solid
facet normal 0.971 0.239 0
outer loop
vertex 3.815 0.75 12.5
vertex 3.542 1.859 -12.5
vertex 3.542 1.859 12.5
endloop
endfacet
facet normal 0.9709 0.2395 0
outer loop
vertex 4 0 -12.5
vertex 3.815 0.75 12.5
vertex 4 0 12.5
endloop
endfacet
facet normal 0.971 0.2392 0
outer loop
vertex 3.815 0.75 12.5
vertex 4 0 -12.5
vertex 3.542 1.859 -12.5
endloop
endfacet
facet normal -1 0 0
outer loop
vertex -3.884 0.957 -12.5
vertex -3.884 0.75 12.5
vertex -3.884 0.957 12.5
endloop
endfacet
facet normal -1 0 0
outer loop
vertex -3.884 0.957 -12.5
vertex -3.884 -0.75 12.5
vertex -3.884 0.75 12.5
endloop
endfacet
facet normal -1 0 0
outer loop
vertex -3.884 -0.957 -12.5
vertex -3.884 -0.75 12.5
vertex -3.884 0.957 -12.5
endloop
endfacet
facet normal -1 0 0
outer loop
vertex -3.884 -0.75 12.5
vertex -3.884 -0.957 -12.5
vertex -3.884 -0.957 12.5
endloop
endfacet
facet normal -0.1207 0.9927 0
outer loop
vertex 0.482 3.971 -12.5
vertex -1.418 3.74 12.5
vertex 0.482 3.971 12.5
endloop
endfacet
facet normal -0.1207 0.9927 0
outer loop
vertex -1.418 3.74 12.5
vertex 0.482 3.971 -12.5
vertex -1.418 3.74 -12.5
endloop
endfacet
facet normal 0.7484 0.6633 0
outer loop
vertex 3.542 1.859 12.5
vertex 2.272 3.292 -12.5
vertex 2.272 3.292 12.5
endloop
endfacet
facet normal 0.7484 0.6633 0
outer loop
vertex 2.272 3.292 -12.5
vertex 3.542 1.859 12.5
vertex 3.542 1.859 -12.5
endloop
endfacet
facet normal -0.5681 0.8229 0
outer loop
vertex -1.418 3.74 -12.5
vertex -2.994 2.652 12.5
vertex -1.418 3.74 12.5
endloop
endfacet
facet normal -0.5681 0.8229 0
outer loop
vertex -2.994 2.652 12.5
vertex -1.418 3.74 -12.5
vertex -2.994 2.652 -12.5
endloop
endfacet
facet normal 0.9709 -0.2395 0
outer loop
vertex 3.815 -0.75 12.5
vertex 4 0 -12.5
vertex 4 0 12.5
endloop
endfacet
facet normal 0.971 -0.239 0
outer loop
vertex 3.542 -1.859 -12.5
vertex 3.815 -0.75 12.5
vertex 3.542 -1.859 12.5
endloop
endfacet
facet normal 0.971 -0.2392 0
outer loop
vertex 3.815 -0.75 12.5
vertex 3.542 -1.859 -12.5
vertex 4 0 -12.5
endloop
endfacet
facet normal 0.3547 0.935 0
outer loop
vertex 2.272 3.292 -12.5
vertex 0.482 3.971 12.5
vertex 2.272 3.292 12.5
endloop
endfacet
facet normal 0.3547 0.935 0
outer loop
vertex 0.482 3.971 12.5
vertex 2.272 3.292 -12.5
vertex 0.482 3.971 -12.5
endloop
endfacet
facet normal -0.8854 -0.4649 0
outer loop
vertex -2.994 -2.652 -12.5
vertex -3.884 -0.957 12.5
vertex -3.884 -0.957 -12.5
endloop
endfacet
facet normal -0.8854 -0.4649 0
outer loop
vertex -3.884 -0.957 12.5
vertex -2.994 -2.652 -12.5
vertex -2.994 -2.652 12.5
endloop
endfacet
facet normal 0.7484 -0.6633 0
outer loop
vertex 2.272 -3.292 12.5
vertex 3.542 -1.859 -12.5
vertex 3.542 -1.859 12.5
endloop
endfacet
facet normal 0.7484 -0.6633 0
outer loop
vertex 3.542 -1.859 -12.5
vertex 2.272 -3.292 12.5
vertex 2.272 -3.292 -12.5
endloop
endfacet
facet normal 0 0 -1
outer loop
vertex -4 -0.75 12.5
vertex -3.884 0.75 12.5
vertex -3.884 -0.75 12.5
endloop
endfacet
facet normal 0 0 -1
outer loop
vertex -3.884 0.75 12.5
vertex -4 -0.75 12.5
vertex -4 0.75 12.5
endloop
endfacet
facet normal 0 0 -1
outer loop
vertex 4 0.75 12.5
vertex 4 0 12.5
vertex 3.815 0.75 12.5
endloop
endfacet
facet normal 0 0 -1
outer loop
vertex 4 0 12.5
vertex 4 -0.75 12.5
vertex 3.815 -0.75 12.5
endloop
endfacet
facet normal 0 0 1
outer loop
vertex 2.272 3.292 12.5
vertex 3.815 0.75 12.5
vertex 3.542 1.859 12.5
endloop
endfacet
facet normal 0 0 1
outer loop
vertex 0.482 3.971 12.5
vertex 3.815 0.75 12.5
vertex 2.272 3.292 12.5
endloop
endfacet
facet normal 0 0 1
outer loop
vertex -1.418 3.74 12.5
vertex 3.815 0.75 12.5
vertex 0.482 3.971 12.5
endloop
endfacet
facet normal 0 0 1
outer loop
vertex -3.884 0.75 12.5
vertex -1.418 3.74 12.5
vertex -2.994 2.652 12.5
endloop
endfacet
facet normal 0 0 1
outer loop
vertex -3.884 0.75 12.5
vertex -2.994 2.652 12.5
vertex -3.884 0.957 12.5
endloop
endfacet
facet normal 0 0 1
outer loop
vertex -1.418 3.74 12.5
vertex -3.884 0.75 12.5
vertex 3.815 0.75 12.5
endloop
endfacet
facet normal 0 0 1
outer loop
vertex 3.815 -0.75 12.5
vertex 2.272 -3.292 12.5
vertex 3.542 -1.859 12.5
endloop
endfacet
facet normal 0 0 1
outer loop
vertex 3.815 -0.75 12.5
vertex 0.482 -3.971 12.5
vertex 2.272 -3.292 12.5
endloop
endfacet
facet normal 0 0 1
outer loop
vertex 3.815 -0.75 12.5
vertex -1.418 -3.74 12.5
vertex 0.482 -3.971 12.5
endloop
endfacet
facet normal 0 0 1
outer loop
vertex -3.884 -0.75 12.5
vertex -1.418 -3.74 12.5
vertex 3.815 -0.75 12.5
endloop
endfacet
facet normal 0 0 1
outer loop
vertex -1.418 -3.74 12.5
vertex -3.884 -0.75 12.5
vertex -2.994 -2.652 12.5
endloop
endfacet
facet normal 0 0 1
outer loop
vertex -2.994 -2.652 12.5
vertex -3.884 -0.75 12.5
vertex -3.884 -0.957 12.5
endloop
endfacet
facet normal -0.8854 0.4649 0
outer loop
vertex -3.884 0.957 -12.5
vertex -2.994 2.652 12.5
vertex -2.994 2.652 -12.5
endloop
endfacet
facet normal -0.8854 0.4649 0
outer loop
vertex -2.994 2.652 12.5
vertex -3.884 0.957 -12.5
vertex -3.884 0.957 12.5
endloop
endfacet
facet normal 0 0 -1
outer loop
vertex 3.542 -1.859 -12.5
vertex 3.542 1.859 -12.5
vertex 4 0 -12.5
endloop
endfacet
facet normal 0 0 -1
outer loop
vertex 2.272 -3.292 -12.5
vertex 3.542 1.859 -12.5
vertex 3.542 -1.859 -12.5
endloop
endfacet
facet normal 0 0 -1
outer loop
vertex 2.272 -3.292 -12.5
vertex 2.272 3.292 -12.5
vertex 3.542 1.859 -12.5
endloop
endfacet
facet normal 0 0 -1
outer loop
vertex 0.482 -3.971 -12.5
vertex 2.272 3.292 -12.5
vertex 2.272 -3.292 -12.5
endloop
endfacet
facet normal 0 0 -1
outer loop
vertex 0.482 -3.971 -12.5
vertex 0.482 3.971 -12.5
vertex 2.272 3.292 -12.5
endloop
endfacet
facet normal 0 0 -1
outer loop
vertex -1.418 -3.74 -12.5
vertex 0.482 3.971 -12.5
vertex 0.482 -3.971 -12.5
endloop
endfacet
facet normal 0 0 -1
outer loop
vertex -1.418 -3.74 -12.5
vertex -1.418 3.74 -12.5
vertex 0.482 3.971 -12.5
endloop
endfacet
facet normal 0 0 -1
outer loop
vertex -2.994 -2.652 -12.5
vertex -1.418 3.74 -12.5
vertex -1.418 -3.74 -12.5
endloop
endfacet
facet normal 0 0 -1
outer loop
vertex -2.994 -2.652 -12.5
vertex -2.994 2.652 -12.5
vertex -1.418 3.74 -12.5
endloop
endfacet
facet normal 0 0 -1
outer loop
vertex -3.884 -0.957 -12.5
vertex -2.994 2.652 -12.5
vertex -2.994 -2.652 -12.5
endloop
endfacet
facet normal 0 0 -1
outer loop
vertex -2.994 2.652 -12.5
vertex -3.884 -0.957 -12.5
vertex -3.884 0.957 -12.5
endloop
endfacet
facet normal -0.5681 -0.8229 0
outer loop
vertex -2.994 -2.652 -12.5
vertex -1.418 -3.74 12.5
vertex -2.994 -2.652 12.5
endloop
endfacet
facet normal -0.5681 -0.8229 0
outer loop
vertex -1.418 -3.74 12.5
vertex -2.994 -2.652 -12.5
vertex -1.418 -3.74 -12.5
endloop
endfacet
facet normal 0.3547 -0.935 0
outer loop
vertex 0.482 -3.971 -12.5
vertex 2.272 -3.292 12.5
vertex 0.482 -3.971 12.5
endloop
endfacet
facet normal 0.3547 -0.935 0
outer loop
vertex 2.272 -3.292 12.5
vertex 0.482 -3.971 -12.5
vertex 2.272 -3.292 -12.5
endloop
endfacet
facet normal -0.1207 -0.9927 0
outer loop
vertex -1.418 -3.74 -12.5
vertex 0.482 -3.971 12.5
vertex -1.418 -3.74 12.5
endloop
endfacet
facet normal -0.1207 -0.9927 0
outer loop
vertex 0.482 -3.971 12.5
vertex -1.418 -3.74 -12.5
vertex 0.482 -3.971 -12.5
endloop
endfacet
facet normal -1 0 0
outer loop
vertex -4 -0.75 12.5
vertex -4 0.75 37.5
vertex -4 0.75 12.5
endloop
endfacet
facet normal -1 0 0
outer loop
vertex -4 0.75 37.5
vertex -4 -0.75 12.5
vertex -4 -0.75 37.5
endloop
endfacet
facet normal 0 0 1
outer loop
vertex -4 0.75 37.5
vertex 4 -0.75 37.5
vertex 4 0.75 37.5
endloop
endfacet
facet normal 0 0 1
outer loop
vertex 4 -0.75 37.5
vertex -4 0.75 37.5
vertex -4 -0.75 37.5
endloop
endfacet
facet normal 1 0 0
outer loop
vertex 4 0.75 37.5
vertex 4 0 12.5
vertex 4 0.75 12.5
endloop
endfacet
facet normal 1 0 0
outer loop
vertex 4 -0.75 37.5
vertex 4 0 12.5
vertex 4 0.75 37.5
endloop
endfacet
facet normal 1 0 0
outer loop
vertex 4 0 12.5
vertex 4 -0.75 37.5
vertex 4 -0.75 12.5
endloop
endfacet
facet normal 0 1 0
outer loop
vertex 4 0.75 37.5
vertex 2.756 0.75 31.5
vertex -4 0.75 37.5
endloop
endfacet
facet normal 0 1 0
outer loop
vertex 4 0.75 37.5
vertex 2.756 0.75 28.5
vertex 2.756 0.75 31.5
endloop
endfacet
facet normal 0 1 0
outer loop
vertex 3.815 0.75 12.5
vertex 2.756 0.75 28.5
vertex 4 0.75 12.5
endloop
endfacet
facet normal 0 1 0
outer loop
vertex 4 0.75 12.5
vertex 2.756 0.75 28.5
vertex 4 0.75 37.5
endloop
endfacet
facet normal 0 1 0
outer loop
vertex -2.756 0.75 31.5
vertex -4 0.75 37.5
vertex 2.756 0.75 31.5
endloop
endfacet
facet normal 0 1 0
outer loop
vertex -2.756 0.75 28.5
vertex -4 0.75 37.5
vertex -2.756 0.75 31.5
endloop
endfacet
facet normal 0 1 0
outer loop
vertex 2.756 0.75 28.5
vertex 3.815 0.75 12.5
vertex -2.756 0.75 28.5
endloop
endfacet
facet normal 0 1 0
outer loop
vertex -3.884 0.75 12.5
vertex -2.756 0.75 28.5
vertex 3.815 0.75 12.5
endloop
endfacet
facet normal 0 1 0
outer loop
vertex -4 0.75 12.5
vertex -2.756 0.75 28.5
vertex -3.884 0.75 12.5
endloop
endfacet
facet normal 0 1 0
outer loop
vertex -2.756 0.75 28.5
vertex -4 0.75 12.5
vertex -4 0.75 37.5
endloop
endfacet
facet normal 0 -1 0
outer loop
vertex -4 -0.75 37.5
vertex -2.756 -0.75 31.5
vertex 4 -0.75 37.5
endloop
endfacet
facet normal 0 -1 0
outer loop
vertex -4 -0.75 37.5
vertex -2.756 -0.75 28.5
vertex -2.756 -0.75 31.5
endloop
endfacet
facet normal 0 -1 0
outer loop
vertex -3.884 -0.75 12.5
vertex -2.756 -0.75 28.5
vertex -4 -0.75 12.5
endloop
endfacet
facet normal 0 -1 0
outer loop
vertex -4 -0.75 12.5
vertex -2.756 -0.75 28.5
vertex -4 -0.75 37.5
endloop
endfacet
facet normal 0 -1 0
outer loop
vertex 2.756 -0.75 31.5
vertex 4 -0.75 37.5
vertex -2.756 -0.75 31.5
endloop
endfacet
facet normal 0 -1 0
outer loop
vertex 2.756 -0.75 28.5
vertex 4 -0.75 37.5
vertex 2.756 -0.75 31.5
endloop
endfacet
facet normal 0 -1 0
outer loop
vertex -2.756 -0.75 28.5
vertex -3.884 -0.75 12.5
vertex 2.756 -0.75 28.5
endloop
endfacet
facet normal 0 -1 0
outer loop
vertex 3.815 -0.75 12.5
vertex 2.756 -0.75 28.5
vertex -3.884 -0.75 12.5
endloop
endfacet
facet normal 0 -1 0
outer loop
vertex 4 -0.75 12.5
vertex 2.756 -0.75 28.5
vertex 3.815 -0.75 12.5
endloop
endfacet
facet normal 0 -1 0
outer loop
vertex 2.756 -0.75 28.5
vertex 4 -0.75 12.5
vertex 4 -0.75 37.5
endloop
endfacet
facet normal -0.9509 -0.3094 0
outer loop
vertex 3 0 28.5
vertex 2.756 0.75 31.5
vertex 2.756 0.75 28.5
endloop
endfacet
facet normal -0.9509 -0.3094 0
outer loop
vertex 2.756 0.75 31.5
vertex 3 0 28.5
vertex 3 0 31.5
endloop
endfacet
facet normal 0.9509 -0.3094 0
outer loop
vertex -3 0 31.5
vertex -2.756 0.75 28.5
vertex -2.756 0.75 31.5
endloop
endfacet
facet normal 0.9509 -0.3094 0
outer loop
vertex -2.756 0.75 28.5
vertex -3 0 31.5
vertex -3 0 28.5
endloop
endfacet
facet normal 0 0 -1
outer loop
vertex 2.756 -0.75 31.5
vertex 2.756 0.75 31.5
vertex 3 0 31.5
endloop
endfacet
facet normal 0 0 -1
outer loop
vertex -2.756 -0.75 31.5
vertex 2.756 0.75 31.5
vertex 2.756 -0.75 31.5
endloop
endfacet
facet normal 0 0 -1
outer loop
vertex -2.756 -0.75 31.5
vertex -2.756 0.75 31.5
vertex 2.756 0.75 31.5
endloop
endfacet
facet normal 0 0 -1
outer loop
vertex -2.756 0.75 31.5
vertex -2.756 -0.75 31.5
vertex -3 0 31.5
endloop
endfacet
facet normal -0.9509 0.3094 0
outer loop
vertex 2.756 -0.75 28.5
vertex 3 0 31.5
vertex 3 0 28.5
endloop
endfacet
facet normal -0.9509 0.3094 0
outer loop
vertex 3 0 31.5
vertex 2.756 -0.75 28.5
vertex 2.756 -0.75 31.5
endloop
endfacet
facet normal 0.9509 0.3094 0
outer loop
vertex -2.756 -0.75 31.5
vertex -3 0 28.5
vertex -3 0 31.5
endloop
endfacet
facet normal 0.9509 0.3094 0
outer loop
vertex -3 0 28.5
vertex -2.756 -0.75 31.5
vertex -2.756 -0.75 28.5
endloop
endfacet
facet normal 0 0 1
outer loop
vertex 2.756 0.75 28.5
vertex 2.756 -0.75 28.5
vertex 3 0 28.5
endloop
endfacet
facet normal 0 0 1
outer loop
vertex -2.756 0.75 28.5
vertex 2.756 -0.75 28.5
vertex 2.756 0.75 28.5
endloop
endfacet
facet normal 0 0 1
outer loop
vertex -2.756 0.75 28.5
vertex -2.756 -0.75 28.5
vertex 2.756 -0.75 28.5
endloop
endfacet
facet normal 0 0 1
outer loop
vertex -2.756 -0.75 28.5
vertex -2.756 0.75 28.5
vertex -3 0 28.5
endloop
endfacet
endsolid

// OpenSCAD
difference() {

union() {
    cylinder(h=25, r=4, center=true);
    translate([0,0,25])
    cube([8,1.5,25], center=true);
    };
    
// Sensor window
    translate([0,0,30])
    cylinder(h=3, r=3, center=true);
}
